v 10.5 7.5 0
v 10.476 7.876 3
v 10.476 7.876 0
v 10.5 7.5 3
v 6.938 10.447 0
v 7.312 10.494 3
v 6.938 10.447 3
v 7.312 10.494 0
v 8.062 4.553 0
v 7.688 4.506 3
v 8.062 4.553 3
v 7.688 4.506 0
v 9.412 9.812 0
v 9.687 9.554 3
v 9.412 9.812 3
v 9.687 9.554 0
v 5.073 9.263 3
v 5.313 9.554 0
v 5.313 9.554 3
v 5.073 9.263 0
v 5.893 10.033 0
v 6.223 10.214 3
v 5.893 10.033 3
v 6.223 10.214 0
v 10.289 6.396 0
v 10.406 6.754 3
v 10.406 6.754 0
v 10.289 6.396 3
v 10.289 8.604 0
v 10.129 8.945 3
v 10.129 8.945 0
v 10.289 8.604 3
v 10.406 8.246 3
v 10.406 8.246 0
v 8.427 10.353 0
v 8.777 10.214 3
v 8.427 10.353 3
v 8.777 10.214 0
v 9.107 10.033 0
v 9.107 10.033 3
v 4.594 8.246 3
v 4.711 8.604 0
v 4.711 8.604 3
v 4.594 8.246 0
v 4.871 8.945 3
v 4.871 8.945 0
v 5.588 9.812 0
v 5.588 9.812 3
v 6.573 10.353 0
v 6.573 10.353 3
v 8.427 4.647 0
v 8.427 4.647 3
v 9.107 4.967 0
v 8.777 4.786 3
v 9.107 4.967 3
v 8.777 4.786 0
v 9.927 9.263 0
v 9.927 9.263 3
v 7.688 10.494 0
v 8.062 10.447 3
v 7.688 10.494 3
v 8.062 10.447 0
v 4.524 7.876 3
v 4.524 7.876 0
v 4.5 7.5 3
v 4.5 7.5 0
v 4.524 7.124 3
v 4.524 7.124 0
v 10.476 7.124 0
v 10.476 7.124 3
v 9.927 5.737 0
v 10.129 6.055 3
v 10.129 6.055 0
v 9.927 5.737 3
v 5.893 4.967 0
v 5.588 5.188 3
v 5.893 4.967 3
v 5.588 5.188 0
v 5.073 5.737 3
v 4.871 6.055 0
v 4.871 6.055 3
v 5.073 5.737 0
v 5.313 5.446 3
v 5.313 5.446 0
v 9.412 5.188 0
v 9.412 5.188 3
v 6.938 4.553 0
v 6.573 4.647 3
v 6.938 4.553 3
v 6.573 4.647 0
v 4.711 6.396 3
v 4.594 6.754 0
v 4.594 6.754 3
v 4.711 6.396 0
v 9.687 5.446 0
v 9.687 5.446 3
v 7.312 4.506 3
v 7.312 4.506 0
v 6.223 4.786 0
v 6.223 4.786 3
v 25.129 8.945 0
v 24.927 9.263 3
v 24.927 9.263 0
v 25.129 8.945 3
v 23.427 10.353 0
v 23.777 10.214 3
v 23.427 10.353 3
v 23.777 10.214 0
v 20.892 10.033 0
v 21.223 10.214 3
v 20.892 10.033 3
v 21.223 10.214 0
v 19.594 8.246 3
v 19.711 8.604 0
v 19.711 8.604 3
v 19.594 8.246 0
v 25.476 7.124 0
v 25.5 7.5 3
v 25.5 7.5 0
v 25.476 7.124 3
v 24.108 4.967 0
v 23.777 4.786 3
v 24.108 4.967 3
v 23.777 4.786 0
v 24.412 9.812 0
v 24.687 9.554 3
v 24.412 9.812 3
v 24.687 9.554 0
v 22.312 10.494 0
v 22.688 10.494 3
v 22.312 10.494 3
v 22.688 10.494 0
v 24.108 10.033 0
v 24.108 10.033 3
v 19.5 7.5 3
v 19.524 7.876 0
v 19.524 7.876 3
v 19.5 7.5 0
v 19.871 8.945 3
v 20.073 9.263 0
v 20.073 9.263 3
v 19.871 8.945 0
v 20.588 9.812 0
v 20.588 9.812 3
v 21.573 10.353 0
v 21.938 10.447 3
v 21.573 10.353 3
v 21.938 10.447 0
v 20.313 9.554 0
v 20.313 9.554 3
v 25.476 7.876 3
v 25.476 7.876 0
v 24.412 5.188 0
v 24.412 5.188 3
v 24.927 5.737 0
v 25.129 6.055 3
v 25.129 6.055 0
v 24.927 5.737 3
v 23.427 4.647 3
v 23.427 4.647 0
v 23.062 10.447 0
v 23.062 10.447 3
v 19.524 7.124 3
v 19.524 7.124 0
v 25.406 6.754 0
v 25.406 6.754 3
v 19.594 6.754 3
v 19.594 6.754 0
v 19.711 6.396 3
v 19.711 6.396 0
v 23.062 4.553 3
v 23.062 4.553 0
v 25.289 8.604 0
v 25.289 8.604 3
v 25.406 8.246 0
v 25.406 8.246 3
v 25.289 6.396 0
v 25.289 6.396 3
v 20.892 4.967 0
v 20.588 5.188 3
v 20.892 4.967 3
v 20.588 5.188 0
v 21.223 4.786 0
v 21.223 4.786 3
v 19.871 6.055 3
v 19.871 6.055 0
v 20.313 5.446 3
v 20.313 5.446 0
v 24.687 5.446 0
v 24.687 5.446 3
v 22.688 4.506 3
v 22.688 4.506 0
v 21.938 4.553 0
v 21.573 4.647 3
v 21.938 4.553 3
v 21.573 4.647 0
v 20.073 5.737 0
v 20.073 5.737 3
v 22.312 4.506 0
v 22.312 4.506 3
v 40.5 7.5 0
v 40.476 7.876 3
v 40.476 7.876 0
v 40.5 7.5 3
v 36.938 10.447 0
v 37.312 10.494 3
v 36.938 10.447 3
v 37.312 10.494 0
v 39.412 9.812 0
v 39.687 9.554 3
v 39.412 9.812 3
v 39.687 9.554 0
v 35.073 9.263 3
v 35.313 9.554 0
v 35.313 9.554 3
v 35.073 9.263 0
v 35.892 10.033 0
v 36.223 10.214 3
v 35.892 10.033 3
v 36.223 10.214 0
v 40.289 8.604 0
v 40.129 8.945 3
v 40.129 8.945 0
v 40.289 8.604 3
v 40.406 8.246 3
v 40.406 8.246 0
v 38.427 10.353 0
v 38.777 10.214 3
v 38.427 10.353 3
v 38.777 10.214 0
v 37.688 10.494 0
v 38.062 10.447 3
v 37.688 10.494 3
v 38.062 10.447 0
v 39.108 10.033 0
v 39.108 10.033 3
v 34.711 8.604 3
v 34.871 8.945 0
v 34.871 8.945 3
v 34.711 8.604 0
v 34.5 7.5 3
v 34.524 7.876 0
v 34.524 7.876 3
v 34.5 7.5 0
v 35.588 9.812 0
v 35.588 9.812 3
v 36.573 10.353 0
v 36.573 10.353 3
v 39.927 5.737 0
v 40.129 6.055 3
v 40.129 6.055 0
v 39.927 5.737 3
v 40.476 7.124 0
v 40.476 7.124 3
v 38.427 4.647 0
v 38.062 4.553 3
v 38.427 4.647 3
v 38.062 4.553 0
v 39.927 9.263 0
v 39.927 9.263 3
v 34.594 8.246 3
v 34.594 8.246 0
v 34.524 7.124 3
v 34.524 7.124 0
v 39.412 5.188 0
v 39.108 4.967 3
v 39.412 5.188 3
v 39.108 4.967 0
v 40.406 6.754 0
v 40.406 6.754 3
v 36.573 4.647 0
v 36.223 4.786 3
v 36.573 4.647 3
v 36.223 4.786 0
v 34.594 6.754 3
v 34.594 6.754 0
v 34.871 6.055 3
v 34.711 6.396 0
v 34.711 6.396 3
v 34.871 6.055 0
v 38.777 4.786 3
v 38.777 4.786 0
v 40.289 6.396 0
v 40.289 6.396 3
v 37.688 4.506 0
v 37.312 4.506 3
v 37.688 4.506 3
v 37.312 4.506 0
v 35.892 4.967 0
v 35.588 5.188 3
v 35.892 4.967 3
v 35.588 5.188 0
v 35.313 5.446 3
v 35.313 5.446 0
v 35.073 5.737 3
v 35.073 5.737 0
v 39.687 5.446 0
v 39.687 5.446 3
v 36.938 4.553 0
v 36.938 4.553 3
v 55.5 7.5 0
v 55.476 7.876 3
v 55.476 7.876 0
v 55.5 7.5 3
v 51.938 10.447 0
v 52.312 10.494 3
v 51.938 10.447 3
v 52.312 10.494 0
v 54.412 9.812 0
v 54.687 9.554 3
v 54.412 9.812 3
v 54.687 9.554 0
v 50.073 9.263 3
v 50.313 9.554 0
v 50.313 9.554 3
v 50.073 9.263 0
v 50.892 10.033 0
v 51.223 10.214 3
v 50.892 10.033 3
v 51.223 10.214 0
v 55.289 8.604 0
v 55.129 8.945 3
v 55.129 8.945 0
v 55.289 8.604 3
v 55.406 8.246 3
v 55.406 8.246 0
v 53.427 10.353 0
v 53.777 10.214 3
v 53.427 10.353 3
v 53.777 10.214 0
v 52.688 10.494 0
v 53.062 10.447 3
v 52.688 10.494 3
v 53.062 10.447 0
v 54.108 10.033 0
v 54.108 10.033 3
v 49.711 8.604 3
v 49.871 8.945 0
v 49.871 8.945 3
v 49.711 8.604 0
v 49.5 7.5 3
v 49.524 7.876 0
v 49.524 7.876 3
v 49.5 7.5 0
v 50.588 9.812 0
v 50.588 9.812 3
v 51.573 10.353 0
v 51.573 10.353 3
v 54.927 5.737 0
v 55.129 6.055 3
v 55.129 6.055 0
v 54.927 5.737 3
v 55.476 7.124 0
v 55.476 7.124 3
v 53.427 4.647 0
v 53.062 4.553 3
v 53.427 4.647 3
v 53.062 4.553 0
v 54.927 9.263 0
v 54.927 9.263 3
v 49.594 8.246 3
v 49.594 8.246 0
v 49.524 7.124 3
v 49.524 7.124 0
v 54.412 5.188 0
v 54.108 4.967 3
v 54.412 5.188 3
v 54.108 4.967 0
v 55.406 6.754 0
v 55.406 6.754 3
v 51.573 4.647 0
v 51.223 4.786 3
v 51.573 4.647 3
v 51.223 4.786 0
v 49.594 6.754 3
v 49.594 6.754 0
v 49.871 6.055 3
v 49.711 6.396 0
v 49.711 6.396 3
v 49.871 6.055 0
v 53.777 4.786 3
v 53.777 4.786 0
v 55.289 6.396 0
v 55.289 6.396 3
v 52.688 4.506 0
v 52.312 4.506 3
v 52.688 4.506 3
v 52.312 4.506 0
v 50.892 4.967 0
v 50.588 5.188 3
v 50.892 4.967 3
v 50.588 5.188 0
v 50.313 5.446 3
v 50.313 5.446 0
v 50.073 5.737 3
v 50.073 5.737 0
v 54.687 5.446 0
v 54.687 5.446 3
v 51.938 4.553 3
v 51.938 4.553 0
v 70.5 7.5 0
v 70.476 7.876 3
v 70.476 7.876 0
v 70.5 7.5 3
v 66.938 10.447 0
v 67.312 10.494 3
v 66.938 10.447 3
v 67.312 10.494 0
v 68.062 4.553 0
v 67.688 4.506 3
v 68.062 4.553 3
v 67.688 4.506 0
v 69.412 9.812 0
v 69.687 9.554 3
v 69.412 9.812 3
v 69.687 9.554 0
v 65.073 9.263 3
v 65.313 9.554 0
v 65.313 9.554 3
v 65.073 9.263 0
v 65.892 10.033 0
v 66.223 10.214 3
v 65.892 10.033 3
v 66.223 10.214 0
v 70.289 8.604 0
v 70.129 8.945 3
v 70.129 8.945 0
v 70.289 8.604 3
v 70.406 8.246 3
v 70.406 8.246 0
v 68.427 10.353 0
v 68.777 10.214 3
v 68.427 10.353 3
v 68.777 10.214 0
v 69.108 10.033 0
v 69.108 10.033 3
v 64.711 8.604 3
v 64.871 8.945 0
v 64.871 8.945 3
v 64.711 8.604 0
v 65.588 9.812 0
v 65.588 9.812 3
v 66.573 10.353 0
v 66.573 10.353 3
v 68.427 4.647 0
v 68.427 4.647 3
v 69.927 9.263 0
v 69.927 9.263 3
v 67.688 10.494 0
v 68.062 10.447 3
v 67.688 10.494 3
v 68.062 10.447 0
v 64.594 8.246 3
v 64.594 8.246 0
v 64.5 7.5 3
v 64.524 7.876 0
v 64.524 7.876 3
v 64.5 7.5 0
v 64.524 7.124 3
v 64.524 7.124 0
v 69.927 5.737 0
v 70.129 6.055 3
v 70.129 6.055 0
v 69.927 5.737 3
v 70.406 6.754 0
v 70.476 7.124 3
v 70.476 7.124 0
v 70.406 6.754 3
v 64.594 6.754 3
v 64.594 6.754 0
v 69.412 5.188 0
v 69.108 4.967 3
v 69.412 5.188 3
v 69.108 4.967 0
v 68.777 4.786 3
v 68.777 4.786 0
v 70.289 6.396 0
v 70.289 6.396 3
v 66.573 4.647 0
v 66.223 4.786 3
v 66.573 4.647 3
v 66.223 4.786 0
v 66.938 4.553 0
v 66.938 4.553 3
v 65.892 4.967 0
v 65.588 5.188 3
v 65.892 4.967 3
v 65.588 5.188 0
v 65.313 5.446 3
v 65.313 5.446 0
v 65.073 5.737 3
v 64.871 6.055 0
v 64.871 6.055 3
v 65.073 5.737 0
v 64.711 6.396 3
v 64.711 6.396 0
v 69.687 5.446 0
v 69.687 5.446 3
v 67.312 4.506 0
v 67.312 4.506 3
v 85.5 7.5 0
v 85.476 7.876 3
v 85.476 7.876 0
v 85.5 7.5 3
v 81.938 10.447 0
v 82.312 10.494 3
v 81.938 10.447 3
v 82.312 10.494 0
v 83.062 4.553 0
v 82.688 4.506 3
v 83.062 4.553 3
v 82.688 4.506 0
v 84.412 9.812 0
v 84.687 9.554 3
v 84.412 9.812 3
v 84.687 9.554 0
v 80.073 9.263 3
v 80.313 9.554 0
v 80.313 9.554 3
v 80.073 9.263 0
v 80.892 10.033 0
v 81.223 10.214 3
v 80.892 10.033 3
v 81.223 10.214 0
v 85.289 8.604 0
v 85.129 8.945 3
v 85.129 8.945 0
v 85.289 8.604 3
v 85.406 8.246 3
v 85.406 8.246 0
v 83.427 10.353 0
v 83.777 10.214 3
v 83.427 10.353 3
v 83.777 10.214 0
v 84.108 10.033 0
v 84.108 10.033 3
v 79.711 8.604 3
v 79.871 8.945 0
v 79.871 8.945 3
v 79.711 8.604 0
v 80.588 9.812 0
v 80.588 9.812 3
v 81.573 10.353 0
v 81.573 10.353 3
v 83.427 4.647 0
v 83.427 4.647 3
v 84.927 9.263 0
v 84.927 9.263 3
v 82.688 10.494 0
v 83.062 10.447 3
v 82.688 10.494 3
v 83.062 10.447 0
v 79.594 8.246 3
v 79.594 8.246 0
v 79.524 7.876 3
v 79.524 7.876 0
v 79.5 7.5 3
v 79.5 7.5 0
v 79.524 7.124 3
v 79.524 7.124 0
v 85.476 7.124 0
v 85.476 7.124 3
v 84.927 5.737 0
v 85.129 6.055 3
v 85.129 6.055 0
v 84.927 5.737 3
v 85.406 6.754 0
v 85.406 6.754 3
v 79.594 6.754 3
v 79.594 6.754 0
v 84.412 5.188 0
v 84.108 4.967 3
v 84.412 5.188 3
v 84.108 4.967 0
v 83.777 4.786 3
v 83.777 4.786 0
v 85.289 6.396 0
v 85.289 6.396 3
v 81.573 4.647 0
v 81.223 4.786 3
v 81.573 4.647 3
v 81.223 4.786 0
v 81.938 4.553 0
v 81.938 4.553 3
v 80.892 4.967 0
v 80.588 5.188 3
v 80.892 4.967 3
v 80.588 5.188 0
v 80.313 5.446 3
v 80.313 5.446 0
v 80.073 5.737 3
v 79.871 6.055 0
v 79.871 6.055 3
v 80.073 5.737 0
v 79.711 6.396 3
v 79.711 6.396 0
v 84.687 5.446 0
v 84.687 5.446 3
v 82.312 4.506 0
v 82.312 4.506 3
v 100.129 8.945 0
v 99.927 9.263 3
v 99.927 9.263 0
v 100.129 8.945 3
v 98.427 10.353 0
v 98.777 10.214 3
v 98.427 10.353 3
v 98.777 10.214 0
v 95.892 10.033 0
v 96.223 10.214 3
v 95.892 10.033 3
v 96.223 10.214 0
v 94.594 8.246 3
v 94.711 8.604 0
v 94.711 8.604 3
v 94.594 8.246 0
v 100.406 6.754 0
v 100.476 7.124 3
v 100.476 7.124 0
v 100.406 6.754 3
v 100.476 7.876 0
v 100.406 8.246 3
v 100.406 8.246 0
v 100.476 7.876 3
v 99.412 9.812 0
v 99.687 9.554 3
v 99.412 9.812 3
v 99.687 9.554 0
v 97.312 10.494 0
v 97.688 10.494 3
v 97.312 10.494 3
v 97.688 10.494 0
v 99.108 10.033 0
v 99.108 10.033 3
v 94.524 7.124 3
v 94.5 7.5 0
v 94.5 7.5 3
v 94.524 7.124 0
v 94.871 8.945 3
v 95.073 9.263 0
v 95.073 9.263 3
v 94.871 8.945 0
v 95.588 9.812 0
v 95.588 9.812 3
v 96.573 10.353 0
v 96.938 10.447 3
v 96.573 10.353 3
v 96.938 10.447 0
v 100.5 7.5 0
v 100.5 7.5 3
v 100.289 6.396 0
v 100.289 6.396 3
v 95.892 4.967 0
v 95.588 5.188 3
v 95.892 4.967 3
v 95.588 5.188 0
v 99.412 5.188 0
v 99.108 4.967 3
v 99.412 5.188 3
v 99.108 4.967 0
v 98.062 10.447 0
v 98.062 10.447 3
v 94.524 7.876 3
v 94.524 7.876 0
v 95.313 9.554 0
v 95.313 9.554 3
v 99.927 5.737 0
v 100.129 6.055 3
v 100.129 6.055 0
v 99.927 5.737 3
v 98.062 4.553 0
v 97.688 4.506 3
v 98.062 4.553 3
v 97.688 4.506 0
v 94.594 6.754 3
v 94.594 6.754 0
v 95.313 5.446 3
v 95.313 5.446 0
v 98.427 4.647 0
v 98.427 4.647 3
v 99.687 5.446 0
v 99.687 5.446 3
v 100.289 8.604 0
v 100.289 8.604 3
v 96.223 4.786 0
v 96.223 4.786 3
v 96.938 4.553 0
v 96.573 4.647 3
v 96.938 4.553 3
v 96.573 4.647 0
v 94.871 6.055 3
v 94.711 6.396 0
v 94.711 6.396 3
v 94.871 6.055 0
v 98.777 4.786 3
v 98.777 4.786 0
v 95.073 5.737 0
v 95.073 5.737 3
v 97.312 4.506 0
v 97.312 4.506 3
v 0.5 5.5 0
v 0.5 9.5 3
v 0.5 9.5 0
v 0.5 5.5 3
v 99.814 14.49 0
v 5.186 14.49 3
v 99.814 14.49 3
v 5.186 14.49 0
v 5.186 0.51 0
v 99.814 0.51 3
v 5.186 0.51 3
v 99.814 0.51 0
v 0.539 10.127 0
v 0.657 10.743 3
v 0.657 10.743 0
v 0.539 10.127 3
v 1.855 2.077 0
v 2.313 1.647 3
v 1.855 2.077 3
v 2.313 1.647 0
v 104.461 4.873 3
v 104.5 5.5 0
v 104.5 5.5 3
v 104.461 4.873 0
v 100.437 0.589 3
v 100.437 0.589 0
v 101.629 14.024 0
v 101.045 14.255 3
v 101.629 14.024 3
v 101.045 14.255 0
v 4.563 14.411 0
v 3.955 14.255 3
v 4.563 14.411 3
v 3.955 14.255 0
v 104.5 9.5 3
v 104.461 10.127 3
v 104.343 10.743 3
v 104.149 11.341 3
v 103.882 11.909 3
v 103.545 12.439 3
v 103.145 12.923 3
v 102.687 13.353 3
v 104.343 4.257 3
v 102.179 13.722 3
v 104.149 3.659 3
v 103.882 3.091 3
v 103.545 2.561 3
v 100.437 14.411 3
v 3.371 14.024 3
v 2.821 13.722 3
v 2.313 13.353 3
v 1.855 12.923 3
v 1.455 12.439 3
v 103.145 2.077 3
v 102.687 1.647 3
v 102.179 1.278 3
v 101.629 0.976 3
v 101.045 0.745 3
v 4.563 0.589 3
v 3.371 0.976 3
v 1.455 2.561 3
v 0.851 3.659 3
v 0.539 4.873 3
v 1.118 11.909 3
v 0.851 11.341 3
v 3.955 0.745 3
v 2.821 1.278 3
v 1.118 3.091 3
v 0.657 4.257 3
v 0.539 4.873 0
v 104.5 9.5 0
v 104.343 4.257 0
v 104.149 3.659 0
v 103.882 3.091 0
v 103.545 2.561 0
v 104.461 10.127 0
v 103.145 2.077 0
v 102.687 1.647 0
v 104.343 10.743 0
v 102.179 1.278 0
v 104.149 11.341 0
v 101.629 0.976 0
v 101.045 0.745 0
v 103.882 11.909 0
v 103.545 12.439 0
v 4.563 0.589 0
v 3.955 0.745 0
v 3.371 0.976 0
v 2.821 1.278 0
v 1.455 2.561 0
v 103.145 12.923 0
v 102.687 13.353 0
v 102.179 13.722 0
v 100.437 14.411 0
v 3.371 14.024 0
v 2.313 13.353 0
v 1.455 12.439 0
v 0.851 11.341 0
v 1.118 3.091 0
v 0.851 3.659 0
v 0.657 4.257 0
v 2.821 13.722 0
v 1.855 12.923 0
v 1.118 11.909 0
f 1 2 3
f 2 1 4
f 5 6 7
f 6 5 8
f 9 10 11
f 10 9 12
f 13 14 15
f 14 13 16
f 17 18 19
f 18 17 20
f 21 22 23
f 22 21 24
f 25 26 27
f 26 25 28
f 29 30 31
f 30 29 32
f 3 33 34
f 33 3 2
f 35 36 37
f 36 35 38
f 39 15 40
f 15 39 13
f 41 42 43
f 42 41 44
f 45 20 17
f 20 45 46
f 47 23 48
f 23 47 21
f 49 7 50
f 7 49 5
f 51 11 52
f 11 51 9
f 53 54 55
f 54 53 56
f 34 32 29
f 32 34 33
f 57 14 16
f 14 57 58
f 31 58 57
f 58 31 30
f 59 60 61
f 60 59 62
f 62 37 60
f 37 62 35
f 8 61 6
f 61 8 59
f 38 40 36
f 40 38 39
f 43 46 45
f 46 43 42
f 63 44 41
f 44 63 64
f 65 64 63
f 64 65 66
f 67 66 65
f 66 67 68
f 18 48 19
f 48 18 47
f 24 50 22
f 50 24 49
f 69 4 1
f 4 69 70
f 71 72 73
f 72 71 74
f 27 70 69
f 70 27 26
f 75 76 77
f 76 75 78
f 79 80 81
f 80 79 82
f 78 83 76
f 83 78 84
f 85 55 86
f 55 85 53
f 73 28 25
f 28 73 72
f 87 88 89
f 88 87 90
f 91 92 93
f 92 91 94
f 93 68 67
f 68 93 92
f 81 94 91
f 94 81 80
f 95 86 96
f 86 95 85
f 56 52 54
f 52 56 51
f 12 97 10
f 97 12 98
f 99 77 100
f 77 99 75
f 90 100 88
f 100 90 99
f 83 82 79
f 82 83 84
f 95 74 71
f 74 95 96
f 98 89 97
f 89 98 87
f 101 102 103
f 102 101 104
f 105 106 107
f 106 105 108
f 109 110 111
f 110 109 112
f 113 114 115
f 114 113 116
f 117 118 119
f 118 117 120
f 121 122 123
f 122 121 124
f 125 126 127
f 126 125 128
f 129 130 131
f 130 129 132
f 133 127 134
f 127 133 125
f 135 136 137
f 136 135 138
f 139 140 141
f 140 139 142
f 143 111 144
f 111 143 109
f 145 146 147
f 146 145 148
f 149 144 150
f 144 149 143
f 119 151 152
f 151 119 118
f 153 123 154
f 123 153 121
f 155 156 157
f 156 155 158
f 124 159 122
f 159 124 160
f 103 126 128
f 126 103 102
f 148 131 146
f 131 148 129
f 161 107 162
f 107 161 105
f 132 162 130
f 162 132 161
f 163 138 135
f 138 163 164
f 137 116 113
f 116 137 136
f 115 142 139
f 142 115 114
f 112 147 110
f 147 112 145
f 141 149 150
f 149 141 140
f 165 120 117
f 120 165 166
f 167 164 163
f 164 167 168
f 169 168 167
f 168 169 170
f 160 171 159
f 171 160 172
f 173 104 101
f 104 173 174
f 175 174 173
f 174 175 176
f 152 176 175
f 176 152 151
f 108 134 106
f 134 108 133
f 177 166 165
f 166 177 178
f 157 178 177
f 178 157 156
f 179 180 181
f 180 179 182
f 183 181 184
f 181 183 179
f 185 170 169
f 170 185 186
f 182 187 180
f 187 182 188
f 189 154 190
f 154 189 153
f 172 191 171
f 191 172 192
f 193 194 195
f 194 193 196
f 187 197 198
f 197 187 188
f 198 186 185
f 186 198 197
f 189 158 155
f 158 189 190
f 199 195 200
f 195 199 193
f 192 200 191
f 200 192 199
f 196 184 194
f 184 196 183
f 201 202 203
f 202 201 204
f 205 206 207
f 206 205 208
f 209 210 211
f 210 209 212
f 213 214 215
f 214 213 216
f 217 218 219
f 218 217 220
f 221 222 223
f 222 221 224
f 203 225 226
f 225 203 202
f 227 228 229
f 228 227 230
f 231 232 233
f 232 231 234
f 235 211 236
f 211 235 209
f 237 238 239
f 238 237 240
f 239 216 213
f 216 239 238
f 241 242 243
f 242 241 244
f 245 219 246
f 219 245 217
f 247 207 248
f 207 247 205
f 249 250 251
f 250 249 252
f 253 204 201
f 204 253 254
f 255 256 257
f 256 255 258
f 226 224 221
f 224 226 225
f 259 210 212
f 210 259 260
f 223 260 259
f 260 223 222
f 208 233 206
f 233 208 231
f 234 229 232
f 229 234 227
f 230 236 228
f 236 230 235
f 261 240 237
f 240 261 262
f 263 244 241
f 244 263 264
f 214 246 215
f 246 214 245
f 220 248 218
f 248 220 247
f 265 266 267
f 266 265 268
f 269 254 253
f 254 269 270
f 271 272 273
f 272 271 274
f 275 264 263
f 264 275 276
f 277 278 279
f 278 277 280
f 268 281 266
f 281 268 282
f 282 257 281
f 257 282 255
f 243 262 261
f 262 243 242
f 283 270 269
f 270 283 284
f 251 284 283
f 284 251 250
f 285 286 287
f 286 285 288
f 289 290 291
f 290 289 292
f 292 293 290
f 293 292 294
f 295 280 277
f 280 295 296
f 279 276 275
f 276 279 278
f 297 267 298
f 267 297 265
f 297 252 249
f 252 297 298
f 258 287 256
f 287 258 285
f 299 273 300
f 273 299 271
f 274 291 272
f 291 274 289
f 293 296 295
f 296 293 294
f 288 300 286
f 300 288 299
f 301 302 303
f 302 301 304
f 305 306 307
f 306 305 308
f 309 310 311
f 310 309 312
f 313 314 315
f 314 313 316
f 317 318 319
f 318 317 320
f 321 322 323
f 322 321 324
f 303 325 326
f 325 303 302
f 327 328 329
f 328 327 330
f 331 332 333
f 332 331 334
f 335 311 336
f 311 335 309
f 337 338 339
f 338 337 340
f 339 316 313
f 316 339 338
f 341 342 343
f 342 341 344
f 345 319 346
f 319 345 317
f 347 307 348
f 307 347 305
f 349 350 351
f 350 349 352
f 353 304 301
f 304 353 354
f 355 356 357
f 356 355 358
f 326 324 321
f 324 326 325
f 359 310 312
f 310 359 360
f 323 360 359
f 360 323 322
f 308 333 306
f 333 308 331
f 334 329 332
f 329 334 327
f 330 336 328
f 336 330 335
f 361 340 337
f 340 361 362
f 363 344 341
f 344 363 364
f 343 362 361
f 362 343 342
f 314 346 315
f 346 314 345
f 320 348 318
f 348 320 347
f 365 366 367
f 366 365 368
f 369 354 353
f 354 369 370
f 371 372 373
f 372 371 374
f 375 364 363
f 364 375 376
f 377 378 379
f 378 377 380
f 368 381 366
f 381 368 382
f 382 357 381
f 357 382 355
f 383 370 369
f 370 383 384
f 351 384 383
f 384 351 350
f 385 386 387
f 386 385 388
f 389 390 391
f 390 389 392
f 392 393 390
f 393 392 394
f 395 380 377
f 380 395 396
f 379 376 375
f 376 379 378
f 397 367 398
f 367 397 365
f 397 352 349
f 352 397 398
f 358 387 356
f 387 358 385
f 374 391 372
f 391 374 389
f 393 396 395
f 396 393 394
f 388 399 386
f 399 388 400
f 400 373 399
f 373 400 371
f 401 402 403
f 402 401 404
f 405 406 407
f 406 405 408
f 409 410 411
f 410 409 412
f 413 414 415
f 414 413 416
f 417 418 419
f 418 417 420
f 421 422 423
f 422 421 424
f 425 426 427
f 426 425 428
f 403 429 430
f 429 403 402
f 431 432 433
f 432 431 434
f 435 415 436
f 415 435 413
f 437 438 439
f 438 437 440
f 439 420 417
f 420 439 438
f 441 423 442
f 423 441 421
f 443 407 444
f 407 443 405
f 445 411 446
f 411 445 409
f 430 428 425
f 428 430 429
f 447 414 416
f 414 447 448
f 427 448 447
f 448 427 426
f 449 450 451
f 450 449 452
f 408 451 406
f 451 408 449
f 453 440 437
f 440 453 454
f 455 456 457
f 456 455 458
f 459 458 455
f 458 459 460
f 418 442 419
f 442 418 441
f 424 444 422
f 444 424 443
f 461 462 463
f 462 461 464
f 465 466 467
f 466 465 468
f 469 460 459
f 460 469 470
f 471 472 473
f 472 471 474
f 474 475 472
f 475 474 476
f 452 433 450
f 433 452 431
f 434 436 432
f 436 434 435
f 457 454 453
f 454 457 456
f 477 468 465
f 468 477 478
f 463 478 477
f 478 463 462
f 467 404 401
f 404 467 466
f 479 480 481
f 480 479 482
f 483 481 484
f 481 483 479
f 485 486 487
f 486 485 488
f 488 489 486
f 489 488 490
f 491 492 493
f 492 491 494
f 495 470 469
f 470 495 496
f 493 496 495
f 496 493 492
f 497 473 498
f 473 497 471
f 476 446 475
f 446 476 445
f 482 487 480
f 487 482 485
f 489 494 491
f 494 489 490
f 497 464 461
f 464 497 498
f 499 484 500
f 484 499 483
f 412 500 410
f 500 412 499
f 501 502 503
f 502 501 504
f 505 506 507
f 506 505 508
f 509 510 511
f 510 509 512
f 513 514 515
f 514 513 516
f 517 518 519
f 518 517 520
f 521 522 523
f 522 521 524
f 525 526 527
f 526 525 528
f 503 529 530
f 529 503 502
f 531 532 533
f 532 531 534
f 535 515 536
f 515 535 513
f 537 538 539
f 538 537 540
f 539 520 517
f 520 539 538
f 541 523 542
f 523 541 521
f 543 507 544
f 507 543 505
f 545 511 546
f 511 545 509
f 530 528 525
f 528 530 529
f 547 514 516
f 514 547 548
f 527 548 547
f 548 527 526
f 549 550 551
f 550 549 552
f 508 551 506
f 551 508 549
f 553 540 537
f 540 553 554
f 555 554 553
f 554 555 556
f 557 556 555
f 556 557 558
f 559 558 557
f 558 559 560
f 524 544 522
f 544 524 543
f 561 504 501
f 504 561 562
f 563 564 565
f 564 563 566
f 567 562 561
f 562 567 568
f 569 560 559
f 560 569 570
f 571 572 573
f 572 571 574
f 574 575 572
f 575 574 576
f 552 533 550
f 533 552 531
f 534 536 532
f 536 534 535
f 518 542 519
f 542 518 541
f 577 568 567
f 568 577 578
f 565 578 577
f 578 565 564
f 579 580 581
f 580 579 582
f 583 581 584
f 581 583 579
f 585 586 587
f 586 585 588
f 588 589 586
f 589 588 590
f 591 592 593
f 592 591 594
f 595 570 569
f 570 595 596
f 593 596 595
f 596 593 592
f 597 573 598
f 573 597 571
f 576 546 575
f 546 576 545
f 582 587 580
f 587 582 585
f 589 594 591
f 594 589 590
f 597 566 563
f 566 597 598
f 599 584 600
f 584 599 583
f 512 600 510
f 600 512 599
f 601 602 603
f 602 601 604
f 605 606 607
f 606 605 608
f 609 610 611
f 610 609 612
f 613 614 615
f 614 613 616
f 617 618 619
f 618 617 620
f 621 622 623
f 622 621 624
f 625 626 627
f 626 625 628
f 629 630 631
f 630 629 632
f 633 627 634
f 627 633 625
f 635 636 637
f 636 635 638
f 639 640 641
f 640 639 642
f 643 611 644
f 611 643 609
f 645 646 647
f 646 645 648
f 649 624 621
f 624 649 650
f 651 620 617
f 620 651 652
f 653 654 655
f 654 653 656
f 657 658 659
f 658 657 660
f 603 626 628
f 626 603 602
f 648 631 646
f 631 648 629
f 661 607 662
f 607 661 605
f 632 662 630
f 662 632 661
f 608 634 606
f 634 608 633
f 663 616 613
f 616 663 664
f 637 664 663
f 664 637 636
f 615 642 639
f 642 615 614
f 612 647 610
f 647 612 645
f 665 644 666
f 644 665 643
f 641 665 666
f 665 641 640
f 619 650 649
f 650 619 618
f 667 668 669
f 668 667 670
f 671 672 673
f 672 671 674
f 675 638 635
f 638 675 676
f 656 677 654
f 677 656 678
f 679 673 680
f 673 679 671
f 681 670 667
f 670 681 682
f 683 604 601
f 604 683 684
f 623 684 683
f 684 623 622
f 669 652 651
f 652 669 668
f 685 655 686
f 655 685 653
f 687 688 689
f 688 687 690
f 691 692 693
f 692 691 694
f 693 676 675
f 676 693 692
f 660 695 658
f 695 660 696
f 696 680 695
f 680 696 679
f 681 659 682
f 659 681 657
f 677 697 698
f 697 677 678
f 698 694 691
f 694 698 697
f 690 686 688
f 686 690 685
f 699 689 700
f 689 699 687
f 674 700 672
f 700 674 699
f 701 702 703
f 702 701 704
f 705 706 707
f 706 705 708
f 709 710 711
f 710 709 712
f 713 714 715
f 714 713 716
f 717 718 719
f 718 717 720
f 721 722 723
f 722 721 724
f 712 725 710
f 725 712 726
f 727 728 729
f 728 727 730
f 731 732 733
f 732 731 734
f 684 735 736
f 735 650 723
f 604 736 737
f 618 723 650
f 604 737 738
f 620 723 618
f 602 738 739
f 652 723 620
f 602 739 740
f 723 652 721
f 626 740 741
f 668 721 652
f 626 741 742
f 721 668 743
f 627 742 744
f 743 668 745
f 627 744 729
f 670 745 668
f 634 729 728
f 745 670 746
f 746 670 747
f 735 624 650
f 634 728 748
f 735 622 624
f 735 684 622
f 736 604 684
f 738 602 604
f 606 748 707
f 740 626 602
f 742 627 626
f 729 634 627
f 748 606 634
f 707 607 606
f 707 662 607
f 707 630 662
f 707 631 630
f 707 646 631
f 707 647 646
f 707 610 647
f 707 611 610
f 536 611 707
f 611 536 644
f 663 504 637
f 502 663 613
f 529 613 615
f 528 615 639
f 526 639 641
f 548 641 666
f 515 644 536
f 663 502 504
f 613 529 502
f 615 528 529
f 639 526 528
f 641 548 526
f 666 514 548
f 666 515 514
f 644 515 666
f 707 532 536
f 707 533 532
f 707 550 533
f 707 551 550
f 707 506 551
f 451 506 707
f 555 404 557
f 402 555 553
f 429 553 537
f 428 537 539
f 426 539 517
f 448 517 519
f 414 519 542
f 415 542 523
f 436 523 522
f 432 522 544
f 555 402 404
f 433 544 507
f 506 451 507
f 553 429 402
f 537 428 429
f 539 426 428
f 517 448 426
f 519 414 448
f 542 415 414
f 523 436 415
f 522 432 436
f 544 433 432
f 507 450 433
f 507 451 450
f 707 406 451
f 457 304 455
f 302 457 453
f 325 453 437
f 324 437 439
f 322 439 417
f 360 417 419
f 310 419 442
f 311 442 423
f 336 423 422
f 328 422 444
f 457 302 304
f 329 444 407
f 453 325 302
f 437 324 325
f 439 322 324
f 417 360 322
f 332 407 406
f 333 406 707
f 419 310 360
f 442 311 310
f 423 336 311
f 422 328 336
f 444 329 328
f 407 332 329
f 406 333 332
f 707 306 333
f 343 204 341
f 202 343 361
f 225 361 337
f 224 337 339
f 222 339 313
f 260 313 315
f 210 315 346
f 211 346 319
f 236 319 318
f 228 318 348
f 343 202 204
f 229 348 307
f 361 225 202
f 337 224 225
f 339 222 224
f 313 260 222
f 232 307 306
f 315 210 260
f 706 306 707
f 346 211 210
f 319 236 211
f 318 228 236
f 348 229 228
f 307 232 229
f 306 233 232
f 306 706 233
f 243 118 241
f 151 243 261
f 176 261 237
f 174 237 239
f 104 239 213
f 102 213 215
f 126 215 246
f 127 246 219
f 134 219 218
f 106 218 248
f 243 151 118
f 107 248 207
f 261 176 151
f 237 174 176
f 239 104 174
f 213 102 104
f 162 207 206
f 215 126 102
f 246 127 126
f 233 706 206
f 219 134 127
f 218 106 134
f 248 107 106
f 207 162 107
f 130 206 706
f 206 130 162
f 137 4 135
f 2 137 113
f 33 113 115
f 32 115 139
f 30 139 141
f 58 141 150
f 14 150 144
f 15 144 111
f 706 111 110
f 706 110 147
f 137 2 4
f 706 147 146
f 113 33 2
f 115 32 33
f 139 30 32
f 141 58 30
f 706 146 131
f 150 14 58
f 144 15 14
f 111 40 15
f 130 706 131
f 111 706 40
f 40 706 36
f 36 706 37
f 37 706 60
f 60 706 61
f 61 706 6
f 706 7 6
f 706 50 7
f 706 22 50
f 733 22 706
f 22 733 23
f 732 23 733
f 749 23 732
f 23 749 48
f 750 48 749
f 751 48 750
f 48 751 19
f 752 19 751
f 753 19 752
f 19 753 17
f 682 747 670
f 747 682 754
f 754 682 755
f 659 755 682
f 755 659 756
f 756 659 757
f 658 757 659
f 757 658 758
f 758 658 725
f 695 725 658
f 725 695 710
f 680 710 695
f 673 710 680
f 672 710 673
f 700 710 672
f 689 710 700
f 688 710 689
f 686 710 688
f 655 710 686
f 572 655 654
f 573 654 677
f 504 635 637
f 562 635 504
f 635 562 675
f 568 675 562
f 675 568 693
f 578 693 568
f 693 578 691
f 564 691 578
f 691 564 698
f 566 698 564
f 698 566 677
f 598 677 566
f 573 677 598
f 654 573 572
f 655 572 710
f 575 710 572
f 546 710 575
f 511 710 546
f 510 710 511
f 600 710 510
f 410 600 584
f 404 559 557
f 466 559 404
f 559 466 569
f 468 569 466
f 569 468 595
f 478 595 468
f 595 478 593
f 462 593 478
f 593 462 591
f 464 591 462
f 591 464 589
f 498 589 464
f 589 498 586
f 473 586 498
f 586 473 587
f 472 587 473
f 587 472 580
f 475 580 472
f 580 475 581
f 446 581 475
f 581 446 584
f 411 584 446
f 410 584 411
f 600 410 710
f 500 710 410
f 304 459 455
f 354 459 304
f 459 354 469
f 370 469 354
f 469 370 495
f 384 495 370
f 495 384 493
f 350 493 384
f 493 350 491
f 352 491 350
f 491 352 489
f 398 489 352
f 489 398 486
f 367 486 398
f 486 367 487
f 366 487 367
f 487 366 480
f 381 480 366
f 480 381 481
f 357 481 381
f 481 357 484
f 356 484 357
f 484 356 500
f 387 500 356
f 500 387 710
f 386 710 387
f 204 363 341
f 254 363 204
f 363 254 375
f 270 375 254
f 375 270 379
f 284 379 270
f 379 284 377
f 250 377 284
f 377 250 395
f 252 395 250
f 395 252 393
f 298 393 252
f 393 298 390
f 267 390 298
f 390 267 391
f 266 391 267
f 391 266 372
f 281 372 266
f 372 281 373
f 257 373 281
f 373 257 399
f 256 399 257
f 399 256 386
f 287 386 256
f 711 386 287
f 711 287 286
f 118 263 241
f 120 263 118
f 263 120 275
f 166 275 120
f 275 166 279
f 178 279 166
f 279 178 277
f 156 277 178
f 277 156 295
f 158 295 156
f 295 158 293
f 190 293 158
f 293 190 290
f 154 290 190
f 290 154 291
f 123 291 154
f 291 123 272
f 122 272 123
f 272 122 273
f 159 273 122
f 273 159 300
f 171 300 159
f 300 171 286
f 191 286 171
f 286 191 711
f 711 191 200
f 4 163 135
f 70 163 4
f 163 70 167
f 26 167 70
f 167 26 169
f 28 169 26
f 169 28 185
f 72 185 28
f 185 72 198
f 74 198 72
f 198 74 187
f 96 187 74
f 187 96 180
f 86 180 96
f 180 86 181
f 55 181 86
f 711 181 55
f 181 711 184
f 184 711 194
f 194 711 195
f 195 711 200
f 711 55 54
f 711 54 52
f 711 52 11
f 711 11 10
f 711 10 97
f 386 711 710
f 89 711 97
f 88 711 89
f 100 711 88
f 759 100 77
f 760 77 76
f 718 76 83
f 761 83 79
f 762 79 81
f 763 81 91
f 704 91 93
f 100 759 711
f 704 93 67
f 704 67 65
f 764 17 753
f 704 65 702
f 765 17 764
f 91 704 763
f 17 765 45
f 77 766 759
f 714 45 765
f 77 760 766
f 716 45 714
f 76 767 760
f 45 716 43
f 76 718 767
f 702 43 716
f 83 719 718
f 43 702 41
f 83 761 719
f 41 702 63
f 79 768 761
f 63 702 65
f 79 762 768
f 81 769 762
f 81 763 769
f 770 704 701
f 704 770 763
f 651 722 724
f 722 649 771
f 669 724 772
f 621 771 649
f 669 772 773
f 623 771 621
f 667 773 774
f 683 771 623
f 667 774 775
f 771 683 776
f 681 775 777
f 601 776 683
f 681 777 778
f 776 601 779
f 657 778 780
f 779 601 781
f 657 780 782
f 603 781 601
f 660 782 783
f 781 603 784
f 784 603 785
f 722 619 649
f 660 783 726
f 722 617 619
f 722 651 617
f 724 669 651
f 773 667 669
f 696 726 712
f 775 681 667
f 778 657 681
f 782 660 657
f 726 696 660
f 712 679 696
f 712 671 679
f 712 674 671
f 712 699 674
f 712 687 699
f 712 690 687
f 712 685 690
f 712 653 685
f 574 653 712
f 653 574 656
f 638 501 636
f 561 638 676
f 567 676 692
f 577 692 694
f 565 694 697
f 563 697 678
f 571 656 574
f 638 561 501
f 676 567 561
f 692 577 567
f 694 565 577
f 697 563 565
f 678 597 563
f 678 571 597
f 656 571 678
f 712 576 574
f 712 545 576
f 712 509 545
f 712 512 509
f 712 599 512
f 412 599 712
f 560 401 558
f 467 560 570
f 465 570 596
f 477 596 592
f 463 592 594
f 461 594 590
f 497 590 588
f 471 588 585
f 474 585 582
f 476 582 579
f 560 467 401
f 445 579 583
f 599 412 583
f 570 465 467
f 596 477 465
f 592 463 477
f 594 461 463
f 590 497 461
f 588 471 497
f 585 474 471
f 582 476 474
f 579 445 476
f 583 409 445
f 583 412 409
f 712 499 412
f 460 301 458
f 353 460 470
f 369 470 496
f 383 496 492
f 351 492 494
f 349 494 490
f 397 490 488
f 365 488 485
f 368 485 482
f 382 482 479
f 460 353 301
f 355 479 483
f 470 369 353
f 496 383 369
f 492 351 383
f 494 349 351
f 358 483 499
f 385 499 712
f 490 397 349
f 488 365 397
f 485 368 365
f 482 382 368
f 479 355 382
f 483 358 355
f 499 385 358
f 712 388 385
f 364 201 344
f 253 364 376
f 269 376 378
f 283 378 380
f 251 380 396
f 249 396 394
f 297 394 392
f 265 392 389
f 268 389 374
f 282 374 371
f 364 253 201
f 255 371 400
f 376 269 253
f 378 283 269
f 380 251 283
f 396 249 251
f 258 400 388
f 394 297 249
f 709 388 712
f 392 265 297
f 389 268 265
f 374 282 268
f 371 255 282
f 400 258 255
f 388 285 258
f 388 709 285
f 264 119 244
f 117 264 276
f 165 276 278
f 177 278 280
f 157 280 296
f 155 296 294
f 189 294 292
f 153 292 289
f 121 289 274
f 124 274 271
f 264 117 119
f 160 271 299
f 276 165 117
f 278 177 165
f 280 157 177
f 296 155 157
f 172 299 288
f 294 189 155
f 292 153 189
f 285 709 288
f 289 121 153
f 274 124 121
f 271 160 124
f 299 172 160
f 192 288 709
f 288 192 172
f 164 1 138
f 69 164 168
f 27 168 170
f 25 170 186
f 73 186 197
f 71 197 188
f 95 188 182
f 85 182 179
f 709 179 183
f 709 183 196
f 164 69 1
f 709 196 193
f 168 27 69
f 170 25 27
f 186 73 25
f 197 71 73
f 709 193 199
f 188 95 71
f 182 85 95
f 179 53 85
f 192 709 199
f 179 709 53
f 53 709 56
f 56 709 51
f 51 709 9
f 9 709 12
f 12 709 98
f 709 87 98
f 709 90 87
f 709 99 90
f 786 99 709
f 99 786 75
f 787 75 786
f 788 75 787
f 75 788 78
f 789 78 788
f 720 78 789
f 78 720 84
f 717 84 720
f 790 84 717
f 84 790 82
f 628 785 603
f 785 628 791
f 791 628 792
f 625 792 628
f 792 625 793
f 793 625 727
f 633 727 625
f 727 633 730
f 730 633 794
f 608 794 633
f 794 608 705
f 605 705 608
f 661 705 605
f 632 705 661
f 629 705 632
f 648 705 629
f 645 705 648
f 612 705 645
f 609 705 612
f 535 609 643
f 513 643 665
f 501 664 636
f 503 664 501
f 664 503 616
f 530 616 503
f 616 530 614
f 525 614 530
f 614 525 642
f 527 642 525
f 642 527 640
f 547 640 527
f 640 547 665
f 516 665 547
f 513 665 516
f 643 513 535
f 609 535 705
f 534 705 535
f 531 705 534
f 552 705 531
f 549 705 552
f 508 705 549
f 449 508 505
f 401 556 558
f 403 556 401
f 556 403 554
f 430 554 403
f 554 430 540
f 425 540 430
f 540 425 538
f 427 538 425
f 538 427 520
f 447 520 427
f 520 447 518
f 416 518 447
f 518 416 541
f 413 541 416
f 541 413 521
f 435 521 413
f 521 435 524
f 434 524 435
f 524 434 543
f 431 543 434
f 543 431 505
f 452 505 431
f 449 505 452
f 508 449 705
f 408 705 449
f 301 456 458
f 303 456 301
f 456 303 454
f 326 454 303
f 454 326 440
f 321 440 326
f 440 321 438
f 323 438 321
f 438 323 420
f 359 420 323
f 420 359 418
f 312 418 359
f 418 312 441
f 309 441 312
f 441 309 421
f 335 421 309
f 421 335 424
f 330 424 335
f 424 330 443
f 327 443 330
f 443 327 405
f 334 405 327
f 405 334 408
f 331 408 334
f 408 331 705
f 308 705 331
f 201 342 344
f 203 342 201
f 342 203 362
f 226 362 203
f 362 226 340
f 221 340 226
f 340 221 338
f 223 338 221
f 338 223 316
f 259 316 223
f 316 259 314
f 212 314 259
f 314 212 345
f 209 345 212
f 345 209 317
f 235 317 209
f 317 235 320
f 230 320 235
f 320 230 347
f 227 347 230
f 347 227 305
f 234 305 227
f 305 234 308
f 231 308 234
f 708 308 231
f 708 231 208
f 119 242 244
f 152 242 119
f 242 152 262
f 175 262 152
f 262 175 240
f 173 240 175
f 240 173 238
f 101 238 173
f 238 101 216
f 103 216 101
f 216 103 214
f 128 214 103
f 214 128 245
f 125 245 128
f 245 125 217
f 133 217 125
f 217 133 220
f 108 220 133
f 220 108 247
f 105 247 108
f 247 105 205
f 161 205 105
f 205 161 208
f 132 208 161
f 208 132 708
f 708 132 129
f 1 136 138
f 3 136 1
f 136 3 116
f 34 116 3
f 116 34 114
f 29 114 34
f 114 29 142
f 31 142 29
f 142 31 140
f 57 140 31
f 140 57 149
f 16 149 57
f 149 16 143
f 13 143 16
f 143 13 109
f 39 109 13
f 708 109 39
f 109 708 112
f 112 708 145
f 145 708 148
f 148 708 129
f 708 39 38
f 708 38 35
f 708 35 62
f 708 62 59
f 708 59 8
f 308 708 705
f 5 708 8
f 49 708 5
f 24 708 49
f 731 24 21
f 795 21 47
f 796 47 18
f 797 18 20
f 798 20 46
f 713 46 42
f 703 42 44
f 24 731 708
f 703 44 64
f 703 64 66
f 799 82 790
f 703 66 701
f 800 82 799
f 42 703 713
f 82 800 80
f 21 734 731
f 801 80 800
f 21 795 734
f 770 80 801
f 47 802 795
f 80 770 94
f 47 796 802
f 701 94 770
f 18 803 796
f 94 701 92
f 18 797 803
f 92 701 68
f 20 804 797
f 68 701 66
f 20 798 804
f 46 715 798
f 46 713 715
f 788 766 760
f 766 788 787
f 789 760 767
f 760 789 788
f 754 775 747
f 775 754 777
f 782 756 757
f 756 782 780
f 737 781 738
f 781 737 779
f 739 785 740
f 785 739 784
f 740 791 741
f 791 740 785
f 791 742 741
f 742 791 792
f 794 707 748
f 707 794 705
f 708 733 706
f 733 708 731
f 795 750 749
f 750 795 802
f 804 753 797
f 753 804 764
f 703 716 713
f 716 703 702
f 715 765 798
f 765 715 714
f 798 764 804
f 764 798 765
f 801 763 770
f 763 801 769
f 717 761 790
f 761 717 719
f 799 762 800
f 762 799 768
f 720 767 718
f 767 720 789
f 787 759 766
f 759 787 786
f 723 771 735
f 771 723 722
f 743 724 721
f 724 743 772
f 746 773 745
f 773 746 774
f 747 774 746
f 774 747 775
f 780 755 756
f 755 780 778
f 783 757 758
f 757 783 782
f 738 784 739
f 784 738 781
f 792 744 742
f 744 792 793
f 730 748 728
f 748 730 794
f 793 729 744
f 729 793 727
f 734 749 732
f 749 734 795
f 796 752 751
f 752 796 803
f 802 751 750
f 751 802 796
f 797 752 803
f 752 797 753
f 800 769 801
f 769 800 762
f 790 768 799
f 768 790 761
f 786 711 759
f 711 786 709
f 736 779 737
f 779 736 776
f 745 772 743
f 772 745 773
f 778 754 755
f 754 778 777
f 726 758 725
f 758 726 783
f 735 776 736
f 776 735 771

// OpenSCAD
// Generated by SolidPython 1.1.3 on 2023-01-30 14:07:12
$fn = 50;


difference() {
	union() {
		translate(v = [52.5000000000, 7.5000000000, 0]) {
			rotate(a = [0, 0, 0]) {
				hull() {
					translate(v = [-47.0000000000, 2.0000000000, 0]) {
						rotate(a = [0, 0, 0]) {
							translate(v = [0, 0, 0]) {
								rotate(a = [0, 0, 0]) {
									cylinder(h = 3, r = 5);
								}
							}
						}
					}
					translate(v = [47.0000000000, 2.0000000000, 0]) {
						rotate(a = [0, 0, 0]) {
							translate(v = [0, 0, 0]) {
								rotate(a = [0, 0, 0]) {
									cylinder(h = 3, r = 5);
								}
							}
						}
					}
					translate(v = [-47.0000000000, -2.0000000000, 0]) {
						rotate(a = [0, 0, 0]) {
							translate(v = [0, 0, 0]) {
								rotate(a = [0, 0, 0]) {
									cylinder(h = 3, r = 5);
								}
							}
						}
					}
					translate(v = [47.0000000000, -2.0000000000, 0]) {
						rotate(a = [0, 0, 0]) {
							translate(v = [0, 0, 0]) {
								rotate(a = [0, 0, 0]) {
									cylinder(h = 3, r = 5);
								}
							}
						}
					}
				}
			}
		}
	}
	union() {
		translate(v = [7.5000000000, 7.5000000000, 0]) {
			rotate(a = [0, 0, 0]) {
				translate(v = [0, 0, -50]) {
					rotate(a = [0, 0, 0]) {
						cylinder(h = 100, r = 3.0000000000);
					}
				}
			}
		}
		translate(v = [22.5000000000, 7.5000000000, 0]) {
			rotate(a = [0, 0, 0]) {
				translate(v = [0, 0, -50]) {
					rotate(a = [0, 0, 0]) {
						cylinder(h = 100, r = 3.0000000000);
					}
				}
			}
		}
		translate(v = [37.5000000000, 7.5000000000, 0]) {
			rotate(a = [0, 0, 0]) {
				translate(v = [0, 0, -50]) {
					rotate(a = [0, 0, 0]) {
						cylinder(h = 100, r = 3.0000000000);
					}
				}
			}
		}
		translate(v = [52.5000000000, 7.5000000000, 0]) {
			rotate(a = [0, 0, 0]) {
				translate(v = [0, 0, -50]) {
					rotate(a = [0, 0, 0]) {
						cylinder(h = 100, r = 3.0000000000);
					}
				}
			}
		}
		translate(v = [67.5000000000, 7.5000000000, 0]) {
			rotate(a = [0, 0, 0]) {
				translate(v = [0, 0, -50]) {
					rotate(a = [0, 0, 0]) {
						cylinder(h = 100, r = 3.0000000000);
					}
				}
			}
		}
		translate(v = [82.5000000000, 7.5000000000, 0]) {
			rotate(a = [0, 0, 0]) {
				translate(v = [0, 0, -50]) {
					rotate(a = [0, 0, 0]) {
						cylinder(h = 100, r = 3.0000000000);
					}
				}
			}
		}
		translate(v = [97.5000000000, 7.5000000000, 0]) {
			rotate(a = [0, 0, 0]) {
				translate(v = [0, 0, -50]) {
					rotate(a = [0, 0, 0]) {
						cylinder(h = 100, r = 3.0000000000);
					}
				}
			}
		}
	}
}
/***********************************************
*********      SolidPython code:      **********
************************************************
 
from solid import *
import os
import subprocess

import oomB

import opsc_library_gen

mode = "laser"
#mode = "3d_print"

defined_objects = {}

radius_dict = {}
countersunk_dict = {}


def set_mode(m):
    global mode
    mode = m
    radius_dict['M6'] = 6.5/2
    radius_dict['M3'] = 3.3/2
    if mode == "laser":
        radius_dict['M6'] = 6/2
        radius_dict['M3'] = 3/2

    countersunk_dict['M3'] = {}
    countersunk_dict['M3']['little_rad'] = radius_dict['M3']
    countersunk_dict['M3']['big_rad'] = (5.5+0.6)/2
    if mode == "laser":
        countersunk_dict['M3']['big_rad'] = (4.75+0.6)/2
        countersunk_dict['M3']['little_rad'] = (4.75+0.6)/2

    countersunk_dict['M3']['height'] = 1.7


def opsc_make_object(filename, objects, save_type="none",resolution=50, layers = 1, tilediff = 200, mode="laser"):
    set_mode(mode)
    save_type = save_type.lower()
    os.makedirs(os.path.dirname(filename), exist_ok=True)
    final_object = opsc_get_object(objects)
    # Save the final object to the specified filename    
    scad_render_to_file(final_object, filename, file_header='$fn = %s;' % resolution, include_orig_code=True)
    if mode == "laser":
        filename_laser = filename.replace(".scad","-flat.scad")
        scad_render_to_file(getLaser(final_object, layers=layers, tilediff=tilediff), filename_laser, file_header='$fn = %s;' % resolution, include_orig_code=True)
        if save_type == "all":
            saveToAll(filename_laser)
        elif save_type == "dxf":
            saveToDxf(filename_laser)
    if save_type == "all":
        saveToAll(filename)
    elif save_type == "dxf":
        saveToDxf(filename)


def opsc_get_object(objects):
    # Create the solidpython objects
    positive_objects = [get_opsc_item(obj) for obj in objects if obj['type'] == 'positive']
    negative_objects = [get_opsc_item(obj) for obj in objects if obj['type'] == 'negative']
    # Union the positive objects
    positive_object = union()(*positive_objects)
    # Union the negative objects
    negative_object = union()(*negative_objects)
    # Create the final object by subtracting the negative objects from the positive objects
    return difference()(positive_object, negative_object)

def get_opsc_item(params):
    # A dictionary to map radius string values to numerical values
    #radius_dict = {'small': 5, 'medium': 10, 'large': 15}
    # An array of function names for basic shapes
    basic_shapes = ['cube', 'sphere', 'cylinder']
    
    # An array of function names for other shapes
    other_shapes = ['hole', 'slot', 'rounded_rectangle', 'countersunk']
    


    # Convert radius to r if present, and remove radius from the params dictionary
    if 'radius' in params:
        if isinstance(params['radius'], str):
            # Use the radius_dict to map the radius string value to a numerical value
            params['r'] = radius_dict[params['radius']]
        else:
            params['r'] = params['radius']
        del params['radius']
    

    # Check if the object type is a basic shape
    if params['shape'] in basic_shapes:
        # Remove shape and unexpected dictionary values
        allowed_keys = {'size', 'r', 'r1', 'r2', 'd', 'h', 'rw', 'rh', 'dw', 'dh'}
        shape_params = {k: v for k, v in params.items() if k in allowed_keys}

        # Call the corresponding function for the shape parameter, using ** notation to pass the shape_params dictionary as keyword arguments
        return get_opsc_transform(params,globals()[params['shape']](**shape_params))
    
    # If the object type is not a basic shape, check if it's a defined object or one of the other shapes
    elif params['shape'] in other_shapes:
        # Call the corresponding function for the shape parameter, passing the params dictionary as an argument
        p2 = copy.deepcopy(params)
        p2["pos"] = [0,0,0]
        return get_opsc_transform(params,globals()[params['shape']](p2))
    
    # If the object is not a basic shape or a defined object, try to import it from a .scad file
    else:
        obj = defined_objects[params['shape']]
        return get_opsc_transform(params,obj)

def get_opsc_transform(params, solid_obj):
    # Rotate the object based on the 'rot' field in the params dictionary, or the 'rotX', 'rotY', and 'rotZ' fields if 'rot' is not present
    rot = params.get('rot', [])
    if rot:
        rotX, rotY, rotZ = rot
    else:
        rotX = params.get('rotX', 0)
        rotY = params.get('rotY', 0)
        rotZ = params.get('rotZ', 0)
    solid_obj = rotate([rotX, rotY, rotZ])(solid_obj)

    # Translate the object based on the 'pos' field in the params dictionary, or the 'x', 'y', and 'z' fields if 'pos' is not present
    pos = params.get('pos', [])
    if pos:
        x, y, z = pos
    else:
        x = params.get('x', 0)
        y = params.get('y', 0)
        z = params.get('z', 0)
    solid_obj = translate([x, y, z])(solid_obj)
    return solid_obj


import random

def opsc_easy_array(type, shape, repeats, pos_start, shift_arr, **kwargs):
    for i in range(0,3):
        repeats.append(1)
        pos_start.append(0)
        shift_arr.append(0)
    return_objects = []

    for x in range(0,repeats[0]):
        for y in range(0,repeats[1]):
            for z in range(0,repeats[2]):
                return_objects.append(opsc_easy(type, shape, pos=[pos_start[0]+x*shift_arr[0],pos_start[1]+y*shift_arr[1],pos_start[2]+z*shift_arr[2]], **kwargs))
    return return_objects                



def opsc_easy(type, shape, **kwargs):
    obj = {
        'type': type,
        'shape': shape
    }
    for param in ['size', 'r', 'r1', 'r2', 'd', 'h', 'rw', 'rh', 'dw', 'dh', 'pos', 'x', 'y', 'z', 'rot', 'rotX', 'rotY', 'rotZ', "w"]:
        if param in kwargs:
            obj[param] = kwargs[param]
    return obj

def hole(params):
    p2 = copy.deepcopy(params)  
    # Check if the radius is a string and replace it with the corresponding value from the dictionary
    if isinstance(p2['r'], str):
        p2['r'] = radius_dict[p2['r']]
    
    # Set the height to 100 if not specified
    if 'h' not in p2:
        p2['h'] = 100
        p2["pos"] = [0,0,-50]
    p2["center"] = True
    # Create the cylinder object
    p2["shape"] = "cylinder"
    p2["type"] = "positive"

    return get_opsc_item(p2)

import copy

def countersunk(params):
    p2 = copy.deepcopy(params)
    counter_rad = p2['r']
    p2['r'] = radius_dict[p2['r']]
    hp = copy.deepcopy(p2)
    hp["type"] = "positive"
    hp["shape"] = "hole"
    del hp["rot"]
    hol = get_opsc_item(hp)
    
    cp = copy.deepcopy(p2)
    cp["h"] = countersunk_dict[counter_rad]["height"]
    cp["r2"] = countersunk_dict[counter_rad]["little_rad"]
    cp["r1"] = countersunk_dict[counter_rad]["big_rad"]
    del cp["r"]
    del cp["rot"]
    cp["type"] = "positive"
    cp["shape"] = "cylinder"
    cp["pos"] = [0,0,0]

    top = get_opsc_item(cp)
    return union()(hol,top)



def slot(params):  
    p2 = copy.deepcopy(params) 
    if isinstance(p2['r'], str):
        p2['r'] = radius_dict[p2['r']]
    p2["type"] = "positive"
    p2["shape"] = "hole"
    del p2["rot"]
    p2["pos"] = [0,0,0]
    left = copy.deepcopy(p2)
    right = copy.deepcopy(p2)
    left["pos"][0] = p2["w"] / 2 - p2["r"] 
    
    right["pos"][0] = -p2["w"] / 2 + p2["r"] 
    pass
    leftObj = get_opsc_item(left)
    rightObj = get_opsc_item(right)
    return hull()(leftObj, rightObj)

def rounded_rectangle(params):   
    p2 = copy.deepcopy(params) 
    p2["h"] = p2["size"][2]
    p2["pos"] = p2.get("pos", [0, 0, 0]) 
    p2["type"] = "positive"
    p2["shape"] = "hole"
    p2["pos"] = [0,0,0]
    
    if 'rot' in p2:
        del p2["rot"]   
    if 'r' not in p2:
        p2["r"] = 5 
    tl = copy.deepcopy(p2)
    tr = copy.deepcopy(p2)
    bl = copy.deepcopy(p2)
    br = copy.deepcopy(p2)
    tl["pos"][0] = -(p2["size"][0] - p2["r"]*2)/2
    tl["pos"][1] = (p2["size"][1] - p2["r"]*2)/2
    tr["pos"][0] = (p2["size"][0] - p2["r"]*2)/2
    tr["pos"][1] = (p2["size"][1] - p2["r"]*2)/2
    bl["pos"][0] = -(p2["size"][0] - p2["r"]*2)/2
    bl["pos"][1] = -(p2["size"][1] - p2["r"]*2)/2
    br["pos"][0] = (p2["size"][0] - p2["r"]*2)/2
    br["pos"][1] = -(p2["size"][1] - p2["r"]*2)/2
    del tl["size"]
    del tr["size"]
    del bl["size"]
    del br["size"]
    tlo = get_opsc_item(tl)
    tro = get_opsc_item(tr)
    blo = get_opsc_item(bl)
    bro = get_opsc_item(br)    
    return hull()(tlo, tro, blo, bro)



def import_scad_object(filename):
    # Import the .scad file and convert it to a solidpython object
    #filename = "parts"
    obj = import_scad(filename)
    return obj.main()
    


import os
import solid as solidpython

# A dictionary to store the defined objects


def load_scad_objects():
    opsc_library_gen.gen_library(defined_objects)

import random

def test(num_objects):
    objects = []
    for i in range(num_objects):
        # Choose a random shape
        #shape = random.choice(['cube', 'sphere', 'cylinder', 'hole', 'slot', "rounded_rectangle"])
        shape = random.choice(["rounded_rectangle"])

        # Choose a random type
        type = random.choice(['positive', 'negative'])
        
        # Create an empty object dictionary
        obj = {'shape': shape, 'type': type}
        
        # Set shape-specific parameters
        if obj['shape'] in ['cube']:
            obj['size'] =  [random.uniform(5, 15), random.uniform(5, 15), random.uniform(5, 15)]
        if obj['shape'] in ['rounded_rectangle']:
            obj['size'] =  [random.uniform(5, 15), random.uniform(5, 15), random.uniform(5, 15)]
            obj['r'] = random.uniform(0.5, 5)
        elif obj['shape'] == 'sphere':
            obj['r'] = random.uniform(5, 15)
        elif obj['shape'] in ['cylinder', 'hole']:
            obj['r'] = random.uniform(0.5, 5)
            obj['h'] = random.uniform(5, 15)
        elif obj['shape'] == 'slot':
            obj['r'] = random.uniform(0.5, 5)
            obj['h'] = random.uniform(5, 15)
            obj['w'] = random.uniform(5, 15)
        
        # Set a random position and rotation
        obj['pos'] = [random.uniform(-20, 20), random.uniform(-20, 20), random.uniform(-20, 20)]
        obj['rot'] = [random.uniform(-180, 180), random.uniform(-180, 180), random.uniform(-180, 180)]
        
        # Add the object to the list
        objects.append(obj)
    return objects

####### old file saving
def saveToAll(fileIn):
    saveToDxf(fileIn)
    saveToPng(fileIn)
    saveToStl(fileIn)
    saveToSvg(fileIn)

def saveToDxf(fileIn, fileOut="", copy_to_laser=True):
    if fileOut == "":
        fileOut = fileIn.replace(".scad",".dxf")
    saveToFile(fileIn, fileOut)


    
def saveToPng(fileIn, fileOut="",extra="--render"):
    if fileOut == "":
        fileOut = fileIn.replace(".scad",".png")
    saveToFile(fileIn, fileOut)

def saveToStl(fileIn, fileOut=""):
    if fileOut == "":
        fileOut = fileIn.replace(".scad",".stl")
    saveToFile(fileIn, fileOut)
    
def saveToSvg(fileIn, fileOut=""):
    if fileOut == "":
        fileOut = fileIn.replace(".scad",".svg")
    saveToFile(fileIn, fileOut)

def saveToFile(fileIn, fileOut,extra=""):
    #extra = extra + " --colorscheme Tomorrow"

    launchStr = 'openscad -o "' + fileOut + '"' + extra + ' "' + fileIn + '"'
    if ".png" in fileOut:
        launchStr = launchStr + " --render"
    print("            saveToFile launch string: " + launchStr)
    subprocess.run(launchStr)
    x=0

def getLaser(final_object,start=1.5,layers=1,thickness=3,tilediff=200):
        rv= []

        for x in range(layers):
            rv.append(translate([0,x*tilediff,0])(
                    projection()(
                        intersection()(translate([-500,-500,start+x*thickness])(cube(size=[1000,1000,0.1])),
                            final_object
                        )
                    )
            )
            )
            
        return union()(rv)

set_mode("laser")
load_scad_objects() 
 
************************************************/
